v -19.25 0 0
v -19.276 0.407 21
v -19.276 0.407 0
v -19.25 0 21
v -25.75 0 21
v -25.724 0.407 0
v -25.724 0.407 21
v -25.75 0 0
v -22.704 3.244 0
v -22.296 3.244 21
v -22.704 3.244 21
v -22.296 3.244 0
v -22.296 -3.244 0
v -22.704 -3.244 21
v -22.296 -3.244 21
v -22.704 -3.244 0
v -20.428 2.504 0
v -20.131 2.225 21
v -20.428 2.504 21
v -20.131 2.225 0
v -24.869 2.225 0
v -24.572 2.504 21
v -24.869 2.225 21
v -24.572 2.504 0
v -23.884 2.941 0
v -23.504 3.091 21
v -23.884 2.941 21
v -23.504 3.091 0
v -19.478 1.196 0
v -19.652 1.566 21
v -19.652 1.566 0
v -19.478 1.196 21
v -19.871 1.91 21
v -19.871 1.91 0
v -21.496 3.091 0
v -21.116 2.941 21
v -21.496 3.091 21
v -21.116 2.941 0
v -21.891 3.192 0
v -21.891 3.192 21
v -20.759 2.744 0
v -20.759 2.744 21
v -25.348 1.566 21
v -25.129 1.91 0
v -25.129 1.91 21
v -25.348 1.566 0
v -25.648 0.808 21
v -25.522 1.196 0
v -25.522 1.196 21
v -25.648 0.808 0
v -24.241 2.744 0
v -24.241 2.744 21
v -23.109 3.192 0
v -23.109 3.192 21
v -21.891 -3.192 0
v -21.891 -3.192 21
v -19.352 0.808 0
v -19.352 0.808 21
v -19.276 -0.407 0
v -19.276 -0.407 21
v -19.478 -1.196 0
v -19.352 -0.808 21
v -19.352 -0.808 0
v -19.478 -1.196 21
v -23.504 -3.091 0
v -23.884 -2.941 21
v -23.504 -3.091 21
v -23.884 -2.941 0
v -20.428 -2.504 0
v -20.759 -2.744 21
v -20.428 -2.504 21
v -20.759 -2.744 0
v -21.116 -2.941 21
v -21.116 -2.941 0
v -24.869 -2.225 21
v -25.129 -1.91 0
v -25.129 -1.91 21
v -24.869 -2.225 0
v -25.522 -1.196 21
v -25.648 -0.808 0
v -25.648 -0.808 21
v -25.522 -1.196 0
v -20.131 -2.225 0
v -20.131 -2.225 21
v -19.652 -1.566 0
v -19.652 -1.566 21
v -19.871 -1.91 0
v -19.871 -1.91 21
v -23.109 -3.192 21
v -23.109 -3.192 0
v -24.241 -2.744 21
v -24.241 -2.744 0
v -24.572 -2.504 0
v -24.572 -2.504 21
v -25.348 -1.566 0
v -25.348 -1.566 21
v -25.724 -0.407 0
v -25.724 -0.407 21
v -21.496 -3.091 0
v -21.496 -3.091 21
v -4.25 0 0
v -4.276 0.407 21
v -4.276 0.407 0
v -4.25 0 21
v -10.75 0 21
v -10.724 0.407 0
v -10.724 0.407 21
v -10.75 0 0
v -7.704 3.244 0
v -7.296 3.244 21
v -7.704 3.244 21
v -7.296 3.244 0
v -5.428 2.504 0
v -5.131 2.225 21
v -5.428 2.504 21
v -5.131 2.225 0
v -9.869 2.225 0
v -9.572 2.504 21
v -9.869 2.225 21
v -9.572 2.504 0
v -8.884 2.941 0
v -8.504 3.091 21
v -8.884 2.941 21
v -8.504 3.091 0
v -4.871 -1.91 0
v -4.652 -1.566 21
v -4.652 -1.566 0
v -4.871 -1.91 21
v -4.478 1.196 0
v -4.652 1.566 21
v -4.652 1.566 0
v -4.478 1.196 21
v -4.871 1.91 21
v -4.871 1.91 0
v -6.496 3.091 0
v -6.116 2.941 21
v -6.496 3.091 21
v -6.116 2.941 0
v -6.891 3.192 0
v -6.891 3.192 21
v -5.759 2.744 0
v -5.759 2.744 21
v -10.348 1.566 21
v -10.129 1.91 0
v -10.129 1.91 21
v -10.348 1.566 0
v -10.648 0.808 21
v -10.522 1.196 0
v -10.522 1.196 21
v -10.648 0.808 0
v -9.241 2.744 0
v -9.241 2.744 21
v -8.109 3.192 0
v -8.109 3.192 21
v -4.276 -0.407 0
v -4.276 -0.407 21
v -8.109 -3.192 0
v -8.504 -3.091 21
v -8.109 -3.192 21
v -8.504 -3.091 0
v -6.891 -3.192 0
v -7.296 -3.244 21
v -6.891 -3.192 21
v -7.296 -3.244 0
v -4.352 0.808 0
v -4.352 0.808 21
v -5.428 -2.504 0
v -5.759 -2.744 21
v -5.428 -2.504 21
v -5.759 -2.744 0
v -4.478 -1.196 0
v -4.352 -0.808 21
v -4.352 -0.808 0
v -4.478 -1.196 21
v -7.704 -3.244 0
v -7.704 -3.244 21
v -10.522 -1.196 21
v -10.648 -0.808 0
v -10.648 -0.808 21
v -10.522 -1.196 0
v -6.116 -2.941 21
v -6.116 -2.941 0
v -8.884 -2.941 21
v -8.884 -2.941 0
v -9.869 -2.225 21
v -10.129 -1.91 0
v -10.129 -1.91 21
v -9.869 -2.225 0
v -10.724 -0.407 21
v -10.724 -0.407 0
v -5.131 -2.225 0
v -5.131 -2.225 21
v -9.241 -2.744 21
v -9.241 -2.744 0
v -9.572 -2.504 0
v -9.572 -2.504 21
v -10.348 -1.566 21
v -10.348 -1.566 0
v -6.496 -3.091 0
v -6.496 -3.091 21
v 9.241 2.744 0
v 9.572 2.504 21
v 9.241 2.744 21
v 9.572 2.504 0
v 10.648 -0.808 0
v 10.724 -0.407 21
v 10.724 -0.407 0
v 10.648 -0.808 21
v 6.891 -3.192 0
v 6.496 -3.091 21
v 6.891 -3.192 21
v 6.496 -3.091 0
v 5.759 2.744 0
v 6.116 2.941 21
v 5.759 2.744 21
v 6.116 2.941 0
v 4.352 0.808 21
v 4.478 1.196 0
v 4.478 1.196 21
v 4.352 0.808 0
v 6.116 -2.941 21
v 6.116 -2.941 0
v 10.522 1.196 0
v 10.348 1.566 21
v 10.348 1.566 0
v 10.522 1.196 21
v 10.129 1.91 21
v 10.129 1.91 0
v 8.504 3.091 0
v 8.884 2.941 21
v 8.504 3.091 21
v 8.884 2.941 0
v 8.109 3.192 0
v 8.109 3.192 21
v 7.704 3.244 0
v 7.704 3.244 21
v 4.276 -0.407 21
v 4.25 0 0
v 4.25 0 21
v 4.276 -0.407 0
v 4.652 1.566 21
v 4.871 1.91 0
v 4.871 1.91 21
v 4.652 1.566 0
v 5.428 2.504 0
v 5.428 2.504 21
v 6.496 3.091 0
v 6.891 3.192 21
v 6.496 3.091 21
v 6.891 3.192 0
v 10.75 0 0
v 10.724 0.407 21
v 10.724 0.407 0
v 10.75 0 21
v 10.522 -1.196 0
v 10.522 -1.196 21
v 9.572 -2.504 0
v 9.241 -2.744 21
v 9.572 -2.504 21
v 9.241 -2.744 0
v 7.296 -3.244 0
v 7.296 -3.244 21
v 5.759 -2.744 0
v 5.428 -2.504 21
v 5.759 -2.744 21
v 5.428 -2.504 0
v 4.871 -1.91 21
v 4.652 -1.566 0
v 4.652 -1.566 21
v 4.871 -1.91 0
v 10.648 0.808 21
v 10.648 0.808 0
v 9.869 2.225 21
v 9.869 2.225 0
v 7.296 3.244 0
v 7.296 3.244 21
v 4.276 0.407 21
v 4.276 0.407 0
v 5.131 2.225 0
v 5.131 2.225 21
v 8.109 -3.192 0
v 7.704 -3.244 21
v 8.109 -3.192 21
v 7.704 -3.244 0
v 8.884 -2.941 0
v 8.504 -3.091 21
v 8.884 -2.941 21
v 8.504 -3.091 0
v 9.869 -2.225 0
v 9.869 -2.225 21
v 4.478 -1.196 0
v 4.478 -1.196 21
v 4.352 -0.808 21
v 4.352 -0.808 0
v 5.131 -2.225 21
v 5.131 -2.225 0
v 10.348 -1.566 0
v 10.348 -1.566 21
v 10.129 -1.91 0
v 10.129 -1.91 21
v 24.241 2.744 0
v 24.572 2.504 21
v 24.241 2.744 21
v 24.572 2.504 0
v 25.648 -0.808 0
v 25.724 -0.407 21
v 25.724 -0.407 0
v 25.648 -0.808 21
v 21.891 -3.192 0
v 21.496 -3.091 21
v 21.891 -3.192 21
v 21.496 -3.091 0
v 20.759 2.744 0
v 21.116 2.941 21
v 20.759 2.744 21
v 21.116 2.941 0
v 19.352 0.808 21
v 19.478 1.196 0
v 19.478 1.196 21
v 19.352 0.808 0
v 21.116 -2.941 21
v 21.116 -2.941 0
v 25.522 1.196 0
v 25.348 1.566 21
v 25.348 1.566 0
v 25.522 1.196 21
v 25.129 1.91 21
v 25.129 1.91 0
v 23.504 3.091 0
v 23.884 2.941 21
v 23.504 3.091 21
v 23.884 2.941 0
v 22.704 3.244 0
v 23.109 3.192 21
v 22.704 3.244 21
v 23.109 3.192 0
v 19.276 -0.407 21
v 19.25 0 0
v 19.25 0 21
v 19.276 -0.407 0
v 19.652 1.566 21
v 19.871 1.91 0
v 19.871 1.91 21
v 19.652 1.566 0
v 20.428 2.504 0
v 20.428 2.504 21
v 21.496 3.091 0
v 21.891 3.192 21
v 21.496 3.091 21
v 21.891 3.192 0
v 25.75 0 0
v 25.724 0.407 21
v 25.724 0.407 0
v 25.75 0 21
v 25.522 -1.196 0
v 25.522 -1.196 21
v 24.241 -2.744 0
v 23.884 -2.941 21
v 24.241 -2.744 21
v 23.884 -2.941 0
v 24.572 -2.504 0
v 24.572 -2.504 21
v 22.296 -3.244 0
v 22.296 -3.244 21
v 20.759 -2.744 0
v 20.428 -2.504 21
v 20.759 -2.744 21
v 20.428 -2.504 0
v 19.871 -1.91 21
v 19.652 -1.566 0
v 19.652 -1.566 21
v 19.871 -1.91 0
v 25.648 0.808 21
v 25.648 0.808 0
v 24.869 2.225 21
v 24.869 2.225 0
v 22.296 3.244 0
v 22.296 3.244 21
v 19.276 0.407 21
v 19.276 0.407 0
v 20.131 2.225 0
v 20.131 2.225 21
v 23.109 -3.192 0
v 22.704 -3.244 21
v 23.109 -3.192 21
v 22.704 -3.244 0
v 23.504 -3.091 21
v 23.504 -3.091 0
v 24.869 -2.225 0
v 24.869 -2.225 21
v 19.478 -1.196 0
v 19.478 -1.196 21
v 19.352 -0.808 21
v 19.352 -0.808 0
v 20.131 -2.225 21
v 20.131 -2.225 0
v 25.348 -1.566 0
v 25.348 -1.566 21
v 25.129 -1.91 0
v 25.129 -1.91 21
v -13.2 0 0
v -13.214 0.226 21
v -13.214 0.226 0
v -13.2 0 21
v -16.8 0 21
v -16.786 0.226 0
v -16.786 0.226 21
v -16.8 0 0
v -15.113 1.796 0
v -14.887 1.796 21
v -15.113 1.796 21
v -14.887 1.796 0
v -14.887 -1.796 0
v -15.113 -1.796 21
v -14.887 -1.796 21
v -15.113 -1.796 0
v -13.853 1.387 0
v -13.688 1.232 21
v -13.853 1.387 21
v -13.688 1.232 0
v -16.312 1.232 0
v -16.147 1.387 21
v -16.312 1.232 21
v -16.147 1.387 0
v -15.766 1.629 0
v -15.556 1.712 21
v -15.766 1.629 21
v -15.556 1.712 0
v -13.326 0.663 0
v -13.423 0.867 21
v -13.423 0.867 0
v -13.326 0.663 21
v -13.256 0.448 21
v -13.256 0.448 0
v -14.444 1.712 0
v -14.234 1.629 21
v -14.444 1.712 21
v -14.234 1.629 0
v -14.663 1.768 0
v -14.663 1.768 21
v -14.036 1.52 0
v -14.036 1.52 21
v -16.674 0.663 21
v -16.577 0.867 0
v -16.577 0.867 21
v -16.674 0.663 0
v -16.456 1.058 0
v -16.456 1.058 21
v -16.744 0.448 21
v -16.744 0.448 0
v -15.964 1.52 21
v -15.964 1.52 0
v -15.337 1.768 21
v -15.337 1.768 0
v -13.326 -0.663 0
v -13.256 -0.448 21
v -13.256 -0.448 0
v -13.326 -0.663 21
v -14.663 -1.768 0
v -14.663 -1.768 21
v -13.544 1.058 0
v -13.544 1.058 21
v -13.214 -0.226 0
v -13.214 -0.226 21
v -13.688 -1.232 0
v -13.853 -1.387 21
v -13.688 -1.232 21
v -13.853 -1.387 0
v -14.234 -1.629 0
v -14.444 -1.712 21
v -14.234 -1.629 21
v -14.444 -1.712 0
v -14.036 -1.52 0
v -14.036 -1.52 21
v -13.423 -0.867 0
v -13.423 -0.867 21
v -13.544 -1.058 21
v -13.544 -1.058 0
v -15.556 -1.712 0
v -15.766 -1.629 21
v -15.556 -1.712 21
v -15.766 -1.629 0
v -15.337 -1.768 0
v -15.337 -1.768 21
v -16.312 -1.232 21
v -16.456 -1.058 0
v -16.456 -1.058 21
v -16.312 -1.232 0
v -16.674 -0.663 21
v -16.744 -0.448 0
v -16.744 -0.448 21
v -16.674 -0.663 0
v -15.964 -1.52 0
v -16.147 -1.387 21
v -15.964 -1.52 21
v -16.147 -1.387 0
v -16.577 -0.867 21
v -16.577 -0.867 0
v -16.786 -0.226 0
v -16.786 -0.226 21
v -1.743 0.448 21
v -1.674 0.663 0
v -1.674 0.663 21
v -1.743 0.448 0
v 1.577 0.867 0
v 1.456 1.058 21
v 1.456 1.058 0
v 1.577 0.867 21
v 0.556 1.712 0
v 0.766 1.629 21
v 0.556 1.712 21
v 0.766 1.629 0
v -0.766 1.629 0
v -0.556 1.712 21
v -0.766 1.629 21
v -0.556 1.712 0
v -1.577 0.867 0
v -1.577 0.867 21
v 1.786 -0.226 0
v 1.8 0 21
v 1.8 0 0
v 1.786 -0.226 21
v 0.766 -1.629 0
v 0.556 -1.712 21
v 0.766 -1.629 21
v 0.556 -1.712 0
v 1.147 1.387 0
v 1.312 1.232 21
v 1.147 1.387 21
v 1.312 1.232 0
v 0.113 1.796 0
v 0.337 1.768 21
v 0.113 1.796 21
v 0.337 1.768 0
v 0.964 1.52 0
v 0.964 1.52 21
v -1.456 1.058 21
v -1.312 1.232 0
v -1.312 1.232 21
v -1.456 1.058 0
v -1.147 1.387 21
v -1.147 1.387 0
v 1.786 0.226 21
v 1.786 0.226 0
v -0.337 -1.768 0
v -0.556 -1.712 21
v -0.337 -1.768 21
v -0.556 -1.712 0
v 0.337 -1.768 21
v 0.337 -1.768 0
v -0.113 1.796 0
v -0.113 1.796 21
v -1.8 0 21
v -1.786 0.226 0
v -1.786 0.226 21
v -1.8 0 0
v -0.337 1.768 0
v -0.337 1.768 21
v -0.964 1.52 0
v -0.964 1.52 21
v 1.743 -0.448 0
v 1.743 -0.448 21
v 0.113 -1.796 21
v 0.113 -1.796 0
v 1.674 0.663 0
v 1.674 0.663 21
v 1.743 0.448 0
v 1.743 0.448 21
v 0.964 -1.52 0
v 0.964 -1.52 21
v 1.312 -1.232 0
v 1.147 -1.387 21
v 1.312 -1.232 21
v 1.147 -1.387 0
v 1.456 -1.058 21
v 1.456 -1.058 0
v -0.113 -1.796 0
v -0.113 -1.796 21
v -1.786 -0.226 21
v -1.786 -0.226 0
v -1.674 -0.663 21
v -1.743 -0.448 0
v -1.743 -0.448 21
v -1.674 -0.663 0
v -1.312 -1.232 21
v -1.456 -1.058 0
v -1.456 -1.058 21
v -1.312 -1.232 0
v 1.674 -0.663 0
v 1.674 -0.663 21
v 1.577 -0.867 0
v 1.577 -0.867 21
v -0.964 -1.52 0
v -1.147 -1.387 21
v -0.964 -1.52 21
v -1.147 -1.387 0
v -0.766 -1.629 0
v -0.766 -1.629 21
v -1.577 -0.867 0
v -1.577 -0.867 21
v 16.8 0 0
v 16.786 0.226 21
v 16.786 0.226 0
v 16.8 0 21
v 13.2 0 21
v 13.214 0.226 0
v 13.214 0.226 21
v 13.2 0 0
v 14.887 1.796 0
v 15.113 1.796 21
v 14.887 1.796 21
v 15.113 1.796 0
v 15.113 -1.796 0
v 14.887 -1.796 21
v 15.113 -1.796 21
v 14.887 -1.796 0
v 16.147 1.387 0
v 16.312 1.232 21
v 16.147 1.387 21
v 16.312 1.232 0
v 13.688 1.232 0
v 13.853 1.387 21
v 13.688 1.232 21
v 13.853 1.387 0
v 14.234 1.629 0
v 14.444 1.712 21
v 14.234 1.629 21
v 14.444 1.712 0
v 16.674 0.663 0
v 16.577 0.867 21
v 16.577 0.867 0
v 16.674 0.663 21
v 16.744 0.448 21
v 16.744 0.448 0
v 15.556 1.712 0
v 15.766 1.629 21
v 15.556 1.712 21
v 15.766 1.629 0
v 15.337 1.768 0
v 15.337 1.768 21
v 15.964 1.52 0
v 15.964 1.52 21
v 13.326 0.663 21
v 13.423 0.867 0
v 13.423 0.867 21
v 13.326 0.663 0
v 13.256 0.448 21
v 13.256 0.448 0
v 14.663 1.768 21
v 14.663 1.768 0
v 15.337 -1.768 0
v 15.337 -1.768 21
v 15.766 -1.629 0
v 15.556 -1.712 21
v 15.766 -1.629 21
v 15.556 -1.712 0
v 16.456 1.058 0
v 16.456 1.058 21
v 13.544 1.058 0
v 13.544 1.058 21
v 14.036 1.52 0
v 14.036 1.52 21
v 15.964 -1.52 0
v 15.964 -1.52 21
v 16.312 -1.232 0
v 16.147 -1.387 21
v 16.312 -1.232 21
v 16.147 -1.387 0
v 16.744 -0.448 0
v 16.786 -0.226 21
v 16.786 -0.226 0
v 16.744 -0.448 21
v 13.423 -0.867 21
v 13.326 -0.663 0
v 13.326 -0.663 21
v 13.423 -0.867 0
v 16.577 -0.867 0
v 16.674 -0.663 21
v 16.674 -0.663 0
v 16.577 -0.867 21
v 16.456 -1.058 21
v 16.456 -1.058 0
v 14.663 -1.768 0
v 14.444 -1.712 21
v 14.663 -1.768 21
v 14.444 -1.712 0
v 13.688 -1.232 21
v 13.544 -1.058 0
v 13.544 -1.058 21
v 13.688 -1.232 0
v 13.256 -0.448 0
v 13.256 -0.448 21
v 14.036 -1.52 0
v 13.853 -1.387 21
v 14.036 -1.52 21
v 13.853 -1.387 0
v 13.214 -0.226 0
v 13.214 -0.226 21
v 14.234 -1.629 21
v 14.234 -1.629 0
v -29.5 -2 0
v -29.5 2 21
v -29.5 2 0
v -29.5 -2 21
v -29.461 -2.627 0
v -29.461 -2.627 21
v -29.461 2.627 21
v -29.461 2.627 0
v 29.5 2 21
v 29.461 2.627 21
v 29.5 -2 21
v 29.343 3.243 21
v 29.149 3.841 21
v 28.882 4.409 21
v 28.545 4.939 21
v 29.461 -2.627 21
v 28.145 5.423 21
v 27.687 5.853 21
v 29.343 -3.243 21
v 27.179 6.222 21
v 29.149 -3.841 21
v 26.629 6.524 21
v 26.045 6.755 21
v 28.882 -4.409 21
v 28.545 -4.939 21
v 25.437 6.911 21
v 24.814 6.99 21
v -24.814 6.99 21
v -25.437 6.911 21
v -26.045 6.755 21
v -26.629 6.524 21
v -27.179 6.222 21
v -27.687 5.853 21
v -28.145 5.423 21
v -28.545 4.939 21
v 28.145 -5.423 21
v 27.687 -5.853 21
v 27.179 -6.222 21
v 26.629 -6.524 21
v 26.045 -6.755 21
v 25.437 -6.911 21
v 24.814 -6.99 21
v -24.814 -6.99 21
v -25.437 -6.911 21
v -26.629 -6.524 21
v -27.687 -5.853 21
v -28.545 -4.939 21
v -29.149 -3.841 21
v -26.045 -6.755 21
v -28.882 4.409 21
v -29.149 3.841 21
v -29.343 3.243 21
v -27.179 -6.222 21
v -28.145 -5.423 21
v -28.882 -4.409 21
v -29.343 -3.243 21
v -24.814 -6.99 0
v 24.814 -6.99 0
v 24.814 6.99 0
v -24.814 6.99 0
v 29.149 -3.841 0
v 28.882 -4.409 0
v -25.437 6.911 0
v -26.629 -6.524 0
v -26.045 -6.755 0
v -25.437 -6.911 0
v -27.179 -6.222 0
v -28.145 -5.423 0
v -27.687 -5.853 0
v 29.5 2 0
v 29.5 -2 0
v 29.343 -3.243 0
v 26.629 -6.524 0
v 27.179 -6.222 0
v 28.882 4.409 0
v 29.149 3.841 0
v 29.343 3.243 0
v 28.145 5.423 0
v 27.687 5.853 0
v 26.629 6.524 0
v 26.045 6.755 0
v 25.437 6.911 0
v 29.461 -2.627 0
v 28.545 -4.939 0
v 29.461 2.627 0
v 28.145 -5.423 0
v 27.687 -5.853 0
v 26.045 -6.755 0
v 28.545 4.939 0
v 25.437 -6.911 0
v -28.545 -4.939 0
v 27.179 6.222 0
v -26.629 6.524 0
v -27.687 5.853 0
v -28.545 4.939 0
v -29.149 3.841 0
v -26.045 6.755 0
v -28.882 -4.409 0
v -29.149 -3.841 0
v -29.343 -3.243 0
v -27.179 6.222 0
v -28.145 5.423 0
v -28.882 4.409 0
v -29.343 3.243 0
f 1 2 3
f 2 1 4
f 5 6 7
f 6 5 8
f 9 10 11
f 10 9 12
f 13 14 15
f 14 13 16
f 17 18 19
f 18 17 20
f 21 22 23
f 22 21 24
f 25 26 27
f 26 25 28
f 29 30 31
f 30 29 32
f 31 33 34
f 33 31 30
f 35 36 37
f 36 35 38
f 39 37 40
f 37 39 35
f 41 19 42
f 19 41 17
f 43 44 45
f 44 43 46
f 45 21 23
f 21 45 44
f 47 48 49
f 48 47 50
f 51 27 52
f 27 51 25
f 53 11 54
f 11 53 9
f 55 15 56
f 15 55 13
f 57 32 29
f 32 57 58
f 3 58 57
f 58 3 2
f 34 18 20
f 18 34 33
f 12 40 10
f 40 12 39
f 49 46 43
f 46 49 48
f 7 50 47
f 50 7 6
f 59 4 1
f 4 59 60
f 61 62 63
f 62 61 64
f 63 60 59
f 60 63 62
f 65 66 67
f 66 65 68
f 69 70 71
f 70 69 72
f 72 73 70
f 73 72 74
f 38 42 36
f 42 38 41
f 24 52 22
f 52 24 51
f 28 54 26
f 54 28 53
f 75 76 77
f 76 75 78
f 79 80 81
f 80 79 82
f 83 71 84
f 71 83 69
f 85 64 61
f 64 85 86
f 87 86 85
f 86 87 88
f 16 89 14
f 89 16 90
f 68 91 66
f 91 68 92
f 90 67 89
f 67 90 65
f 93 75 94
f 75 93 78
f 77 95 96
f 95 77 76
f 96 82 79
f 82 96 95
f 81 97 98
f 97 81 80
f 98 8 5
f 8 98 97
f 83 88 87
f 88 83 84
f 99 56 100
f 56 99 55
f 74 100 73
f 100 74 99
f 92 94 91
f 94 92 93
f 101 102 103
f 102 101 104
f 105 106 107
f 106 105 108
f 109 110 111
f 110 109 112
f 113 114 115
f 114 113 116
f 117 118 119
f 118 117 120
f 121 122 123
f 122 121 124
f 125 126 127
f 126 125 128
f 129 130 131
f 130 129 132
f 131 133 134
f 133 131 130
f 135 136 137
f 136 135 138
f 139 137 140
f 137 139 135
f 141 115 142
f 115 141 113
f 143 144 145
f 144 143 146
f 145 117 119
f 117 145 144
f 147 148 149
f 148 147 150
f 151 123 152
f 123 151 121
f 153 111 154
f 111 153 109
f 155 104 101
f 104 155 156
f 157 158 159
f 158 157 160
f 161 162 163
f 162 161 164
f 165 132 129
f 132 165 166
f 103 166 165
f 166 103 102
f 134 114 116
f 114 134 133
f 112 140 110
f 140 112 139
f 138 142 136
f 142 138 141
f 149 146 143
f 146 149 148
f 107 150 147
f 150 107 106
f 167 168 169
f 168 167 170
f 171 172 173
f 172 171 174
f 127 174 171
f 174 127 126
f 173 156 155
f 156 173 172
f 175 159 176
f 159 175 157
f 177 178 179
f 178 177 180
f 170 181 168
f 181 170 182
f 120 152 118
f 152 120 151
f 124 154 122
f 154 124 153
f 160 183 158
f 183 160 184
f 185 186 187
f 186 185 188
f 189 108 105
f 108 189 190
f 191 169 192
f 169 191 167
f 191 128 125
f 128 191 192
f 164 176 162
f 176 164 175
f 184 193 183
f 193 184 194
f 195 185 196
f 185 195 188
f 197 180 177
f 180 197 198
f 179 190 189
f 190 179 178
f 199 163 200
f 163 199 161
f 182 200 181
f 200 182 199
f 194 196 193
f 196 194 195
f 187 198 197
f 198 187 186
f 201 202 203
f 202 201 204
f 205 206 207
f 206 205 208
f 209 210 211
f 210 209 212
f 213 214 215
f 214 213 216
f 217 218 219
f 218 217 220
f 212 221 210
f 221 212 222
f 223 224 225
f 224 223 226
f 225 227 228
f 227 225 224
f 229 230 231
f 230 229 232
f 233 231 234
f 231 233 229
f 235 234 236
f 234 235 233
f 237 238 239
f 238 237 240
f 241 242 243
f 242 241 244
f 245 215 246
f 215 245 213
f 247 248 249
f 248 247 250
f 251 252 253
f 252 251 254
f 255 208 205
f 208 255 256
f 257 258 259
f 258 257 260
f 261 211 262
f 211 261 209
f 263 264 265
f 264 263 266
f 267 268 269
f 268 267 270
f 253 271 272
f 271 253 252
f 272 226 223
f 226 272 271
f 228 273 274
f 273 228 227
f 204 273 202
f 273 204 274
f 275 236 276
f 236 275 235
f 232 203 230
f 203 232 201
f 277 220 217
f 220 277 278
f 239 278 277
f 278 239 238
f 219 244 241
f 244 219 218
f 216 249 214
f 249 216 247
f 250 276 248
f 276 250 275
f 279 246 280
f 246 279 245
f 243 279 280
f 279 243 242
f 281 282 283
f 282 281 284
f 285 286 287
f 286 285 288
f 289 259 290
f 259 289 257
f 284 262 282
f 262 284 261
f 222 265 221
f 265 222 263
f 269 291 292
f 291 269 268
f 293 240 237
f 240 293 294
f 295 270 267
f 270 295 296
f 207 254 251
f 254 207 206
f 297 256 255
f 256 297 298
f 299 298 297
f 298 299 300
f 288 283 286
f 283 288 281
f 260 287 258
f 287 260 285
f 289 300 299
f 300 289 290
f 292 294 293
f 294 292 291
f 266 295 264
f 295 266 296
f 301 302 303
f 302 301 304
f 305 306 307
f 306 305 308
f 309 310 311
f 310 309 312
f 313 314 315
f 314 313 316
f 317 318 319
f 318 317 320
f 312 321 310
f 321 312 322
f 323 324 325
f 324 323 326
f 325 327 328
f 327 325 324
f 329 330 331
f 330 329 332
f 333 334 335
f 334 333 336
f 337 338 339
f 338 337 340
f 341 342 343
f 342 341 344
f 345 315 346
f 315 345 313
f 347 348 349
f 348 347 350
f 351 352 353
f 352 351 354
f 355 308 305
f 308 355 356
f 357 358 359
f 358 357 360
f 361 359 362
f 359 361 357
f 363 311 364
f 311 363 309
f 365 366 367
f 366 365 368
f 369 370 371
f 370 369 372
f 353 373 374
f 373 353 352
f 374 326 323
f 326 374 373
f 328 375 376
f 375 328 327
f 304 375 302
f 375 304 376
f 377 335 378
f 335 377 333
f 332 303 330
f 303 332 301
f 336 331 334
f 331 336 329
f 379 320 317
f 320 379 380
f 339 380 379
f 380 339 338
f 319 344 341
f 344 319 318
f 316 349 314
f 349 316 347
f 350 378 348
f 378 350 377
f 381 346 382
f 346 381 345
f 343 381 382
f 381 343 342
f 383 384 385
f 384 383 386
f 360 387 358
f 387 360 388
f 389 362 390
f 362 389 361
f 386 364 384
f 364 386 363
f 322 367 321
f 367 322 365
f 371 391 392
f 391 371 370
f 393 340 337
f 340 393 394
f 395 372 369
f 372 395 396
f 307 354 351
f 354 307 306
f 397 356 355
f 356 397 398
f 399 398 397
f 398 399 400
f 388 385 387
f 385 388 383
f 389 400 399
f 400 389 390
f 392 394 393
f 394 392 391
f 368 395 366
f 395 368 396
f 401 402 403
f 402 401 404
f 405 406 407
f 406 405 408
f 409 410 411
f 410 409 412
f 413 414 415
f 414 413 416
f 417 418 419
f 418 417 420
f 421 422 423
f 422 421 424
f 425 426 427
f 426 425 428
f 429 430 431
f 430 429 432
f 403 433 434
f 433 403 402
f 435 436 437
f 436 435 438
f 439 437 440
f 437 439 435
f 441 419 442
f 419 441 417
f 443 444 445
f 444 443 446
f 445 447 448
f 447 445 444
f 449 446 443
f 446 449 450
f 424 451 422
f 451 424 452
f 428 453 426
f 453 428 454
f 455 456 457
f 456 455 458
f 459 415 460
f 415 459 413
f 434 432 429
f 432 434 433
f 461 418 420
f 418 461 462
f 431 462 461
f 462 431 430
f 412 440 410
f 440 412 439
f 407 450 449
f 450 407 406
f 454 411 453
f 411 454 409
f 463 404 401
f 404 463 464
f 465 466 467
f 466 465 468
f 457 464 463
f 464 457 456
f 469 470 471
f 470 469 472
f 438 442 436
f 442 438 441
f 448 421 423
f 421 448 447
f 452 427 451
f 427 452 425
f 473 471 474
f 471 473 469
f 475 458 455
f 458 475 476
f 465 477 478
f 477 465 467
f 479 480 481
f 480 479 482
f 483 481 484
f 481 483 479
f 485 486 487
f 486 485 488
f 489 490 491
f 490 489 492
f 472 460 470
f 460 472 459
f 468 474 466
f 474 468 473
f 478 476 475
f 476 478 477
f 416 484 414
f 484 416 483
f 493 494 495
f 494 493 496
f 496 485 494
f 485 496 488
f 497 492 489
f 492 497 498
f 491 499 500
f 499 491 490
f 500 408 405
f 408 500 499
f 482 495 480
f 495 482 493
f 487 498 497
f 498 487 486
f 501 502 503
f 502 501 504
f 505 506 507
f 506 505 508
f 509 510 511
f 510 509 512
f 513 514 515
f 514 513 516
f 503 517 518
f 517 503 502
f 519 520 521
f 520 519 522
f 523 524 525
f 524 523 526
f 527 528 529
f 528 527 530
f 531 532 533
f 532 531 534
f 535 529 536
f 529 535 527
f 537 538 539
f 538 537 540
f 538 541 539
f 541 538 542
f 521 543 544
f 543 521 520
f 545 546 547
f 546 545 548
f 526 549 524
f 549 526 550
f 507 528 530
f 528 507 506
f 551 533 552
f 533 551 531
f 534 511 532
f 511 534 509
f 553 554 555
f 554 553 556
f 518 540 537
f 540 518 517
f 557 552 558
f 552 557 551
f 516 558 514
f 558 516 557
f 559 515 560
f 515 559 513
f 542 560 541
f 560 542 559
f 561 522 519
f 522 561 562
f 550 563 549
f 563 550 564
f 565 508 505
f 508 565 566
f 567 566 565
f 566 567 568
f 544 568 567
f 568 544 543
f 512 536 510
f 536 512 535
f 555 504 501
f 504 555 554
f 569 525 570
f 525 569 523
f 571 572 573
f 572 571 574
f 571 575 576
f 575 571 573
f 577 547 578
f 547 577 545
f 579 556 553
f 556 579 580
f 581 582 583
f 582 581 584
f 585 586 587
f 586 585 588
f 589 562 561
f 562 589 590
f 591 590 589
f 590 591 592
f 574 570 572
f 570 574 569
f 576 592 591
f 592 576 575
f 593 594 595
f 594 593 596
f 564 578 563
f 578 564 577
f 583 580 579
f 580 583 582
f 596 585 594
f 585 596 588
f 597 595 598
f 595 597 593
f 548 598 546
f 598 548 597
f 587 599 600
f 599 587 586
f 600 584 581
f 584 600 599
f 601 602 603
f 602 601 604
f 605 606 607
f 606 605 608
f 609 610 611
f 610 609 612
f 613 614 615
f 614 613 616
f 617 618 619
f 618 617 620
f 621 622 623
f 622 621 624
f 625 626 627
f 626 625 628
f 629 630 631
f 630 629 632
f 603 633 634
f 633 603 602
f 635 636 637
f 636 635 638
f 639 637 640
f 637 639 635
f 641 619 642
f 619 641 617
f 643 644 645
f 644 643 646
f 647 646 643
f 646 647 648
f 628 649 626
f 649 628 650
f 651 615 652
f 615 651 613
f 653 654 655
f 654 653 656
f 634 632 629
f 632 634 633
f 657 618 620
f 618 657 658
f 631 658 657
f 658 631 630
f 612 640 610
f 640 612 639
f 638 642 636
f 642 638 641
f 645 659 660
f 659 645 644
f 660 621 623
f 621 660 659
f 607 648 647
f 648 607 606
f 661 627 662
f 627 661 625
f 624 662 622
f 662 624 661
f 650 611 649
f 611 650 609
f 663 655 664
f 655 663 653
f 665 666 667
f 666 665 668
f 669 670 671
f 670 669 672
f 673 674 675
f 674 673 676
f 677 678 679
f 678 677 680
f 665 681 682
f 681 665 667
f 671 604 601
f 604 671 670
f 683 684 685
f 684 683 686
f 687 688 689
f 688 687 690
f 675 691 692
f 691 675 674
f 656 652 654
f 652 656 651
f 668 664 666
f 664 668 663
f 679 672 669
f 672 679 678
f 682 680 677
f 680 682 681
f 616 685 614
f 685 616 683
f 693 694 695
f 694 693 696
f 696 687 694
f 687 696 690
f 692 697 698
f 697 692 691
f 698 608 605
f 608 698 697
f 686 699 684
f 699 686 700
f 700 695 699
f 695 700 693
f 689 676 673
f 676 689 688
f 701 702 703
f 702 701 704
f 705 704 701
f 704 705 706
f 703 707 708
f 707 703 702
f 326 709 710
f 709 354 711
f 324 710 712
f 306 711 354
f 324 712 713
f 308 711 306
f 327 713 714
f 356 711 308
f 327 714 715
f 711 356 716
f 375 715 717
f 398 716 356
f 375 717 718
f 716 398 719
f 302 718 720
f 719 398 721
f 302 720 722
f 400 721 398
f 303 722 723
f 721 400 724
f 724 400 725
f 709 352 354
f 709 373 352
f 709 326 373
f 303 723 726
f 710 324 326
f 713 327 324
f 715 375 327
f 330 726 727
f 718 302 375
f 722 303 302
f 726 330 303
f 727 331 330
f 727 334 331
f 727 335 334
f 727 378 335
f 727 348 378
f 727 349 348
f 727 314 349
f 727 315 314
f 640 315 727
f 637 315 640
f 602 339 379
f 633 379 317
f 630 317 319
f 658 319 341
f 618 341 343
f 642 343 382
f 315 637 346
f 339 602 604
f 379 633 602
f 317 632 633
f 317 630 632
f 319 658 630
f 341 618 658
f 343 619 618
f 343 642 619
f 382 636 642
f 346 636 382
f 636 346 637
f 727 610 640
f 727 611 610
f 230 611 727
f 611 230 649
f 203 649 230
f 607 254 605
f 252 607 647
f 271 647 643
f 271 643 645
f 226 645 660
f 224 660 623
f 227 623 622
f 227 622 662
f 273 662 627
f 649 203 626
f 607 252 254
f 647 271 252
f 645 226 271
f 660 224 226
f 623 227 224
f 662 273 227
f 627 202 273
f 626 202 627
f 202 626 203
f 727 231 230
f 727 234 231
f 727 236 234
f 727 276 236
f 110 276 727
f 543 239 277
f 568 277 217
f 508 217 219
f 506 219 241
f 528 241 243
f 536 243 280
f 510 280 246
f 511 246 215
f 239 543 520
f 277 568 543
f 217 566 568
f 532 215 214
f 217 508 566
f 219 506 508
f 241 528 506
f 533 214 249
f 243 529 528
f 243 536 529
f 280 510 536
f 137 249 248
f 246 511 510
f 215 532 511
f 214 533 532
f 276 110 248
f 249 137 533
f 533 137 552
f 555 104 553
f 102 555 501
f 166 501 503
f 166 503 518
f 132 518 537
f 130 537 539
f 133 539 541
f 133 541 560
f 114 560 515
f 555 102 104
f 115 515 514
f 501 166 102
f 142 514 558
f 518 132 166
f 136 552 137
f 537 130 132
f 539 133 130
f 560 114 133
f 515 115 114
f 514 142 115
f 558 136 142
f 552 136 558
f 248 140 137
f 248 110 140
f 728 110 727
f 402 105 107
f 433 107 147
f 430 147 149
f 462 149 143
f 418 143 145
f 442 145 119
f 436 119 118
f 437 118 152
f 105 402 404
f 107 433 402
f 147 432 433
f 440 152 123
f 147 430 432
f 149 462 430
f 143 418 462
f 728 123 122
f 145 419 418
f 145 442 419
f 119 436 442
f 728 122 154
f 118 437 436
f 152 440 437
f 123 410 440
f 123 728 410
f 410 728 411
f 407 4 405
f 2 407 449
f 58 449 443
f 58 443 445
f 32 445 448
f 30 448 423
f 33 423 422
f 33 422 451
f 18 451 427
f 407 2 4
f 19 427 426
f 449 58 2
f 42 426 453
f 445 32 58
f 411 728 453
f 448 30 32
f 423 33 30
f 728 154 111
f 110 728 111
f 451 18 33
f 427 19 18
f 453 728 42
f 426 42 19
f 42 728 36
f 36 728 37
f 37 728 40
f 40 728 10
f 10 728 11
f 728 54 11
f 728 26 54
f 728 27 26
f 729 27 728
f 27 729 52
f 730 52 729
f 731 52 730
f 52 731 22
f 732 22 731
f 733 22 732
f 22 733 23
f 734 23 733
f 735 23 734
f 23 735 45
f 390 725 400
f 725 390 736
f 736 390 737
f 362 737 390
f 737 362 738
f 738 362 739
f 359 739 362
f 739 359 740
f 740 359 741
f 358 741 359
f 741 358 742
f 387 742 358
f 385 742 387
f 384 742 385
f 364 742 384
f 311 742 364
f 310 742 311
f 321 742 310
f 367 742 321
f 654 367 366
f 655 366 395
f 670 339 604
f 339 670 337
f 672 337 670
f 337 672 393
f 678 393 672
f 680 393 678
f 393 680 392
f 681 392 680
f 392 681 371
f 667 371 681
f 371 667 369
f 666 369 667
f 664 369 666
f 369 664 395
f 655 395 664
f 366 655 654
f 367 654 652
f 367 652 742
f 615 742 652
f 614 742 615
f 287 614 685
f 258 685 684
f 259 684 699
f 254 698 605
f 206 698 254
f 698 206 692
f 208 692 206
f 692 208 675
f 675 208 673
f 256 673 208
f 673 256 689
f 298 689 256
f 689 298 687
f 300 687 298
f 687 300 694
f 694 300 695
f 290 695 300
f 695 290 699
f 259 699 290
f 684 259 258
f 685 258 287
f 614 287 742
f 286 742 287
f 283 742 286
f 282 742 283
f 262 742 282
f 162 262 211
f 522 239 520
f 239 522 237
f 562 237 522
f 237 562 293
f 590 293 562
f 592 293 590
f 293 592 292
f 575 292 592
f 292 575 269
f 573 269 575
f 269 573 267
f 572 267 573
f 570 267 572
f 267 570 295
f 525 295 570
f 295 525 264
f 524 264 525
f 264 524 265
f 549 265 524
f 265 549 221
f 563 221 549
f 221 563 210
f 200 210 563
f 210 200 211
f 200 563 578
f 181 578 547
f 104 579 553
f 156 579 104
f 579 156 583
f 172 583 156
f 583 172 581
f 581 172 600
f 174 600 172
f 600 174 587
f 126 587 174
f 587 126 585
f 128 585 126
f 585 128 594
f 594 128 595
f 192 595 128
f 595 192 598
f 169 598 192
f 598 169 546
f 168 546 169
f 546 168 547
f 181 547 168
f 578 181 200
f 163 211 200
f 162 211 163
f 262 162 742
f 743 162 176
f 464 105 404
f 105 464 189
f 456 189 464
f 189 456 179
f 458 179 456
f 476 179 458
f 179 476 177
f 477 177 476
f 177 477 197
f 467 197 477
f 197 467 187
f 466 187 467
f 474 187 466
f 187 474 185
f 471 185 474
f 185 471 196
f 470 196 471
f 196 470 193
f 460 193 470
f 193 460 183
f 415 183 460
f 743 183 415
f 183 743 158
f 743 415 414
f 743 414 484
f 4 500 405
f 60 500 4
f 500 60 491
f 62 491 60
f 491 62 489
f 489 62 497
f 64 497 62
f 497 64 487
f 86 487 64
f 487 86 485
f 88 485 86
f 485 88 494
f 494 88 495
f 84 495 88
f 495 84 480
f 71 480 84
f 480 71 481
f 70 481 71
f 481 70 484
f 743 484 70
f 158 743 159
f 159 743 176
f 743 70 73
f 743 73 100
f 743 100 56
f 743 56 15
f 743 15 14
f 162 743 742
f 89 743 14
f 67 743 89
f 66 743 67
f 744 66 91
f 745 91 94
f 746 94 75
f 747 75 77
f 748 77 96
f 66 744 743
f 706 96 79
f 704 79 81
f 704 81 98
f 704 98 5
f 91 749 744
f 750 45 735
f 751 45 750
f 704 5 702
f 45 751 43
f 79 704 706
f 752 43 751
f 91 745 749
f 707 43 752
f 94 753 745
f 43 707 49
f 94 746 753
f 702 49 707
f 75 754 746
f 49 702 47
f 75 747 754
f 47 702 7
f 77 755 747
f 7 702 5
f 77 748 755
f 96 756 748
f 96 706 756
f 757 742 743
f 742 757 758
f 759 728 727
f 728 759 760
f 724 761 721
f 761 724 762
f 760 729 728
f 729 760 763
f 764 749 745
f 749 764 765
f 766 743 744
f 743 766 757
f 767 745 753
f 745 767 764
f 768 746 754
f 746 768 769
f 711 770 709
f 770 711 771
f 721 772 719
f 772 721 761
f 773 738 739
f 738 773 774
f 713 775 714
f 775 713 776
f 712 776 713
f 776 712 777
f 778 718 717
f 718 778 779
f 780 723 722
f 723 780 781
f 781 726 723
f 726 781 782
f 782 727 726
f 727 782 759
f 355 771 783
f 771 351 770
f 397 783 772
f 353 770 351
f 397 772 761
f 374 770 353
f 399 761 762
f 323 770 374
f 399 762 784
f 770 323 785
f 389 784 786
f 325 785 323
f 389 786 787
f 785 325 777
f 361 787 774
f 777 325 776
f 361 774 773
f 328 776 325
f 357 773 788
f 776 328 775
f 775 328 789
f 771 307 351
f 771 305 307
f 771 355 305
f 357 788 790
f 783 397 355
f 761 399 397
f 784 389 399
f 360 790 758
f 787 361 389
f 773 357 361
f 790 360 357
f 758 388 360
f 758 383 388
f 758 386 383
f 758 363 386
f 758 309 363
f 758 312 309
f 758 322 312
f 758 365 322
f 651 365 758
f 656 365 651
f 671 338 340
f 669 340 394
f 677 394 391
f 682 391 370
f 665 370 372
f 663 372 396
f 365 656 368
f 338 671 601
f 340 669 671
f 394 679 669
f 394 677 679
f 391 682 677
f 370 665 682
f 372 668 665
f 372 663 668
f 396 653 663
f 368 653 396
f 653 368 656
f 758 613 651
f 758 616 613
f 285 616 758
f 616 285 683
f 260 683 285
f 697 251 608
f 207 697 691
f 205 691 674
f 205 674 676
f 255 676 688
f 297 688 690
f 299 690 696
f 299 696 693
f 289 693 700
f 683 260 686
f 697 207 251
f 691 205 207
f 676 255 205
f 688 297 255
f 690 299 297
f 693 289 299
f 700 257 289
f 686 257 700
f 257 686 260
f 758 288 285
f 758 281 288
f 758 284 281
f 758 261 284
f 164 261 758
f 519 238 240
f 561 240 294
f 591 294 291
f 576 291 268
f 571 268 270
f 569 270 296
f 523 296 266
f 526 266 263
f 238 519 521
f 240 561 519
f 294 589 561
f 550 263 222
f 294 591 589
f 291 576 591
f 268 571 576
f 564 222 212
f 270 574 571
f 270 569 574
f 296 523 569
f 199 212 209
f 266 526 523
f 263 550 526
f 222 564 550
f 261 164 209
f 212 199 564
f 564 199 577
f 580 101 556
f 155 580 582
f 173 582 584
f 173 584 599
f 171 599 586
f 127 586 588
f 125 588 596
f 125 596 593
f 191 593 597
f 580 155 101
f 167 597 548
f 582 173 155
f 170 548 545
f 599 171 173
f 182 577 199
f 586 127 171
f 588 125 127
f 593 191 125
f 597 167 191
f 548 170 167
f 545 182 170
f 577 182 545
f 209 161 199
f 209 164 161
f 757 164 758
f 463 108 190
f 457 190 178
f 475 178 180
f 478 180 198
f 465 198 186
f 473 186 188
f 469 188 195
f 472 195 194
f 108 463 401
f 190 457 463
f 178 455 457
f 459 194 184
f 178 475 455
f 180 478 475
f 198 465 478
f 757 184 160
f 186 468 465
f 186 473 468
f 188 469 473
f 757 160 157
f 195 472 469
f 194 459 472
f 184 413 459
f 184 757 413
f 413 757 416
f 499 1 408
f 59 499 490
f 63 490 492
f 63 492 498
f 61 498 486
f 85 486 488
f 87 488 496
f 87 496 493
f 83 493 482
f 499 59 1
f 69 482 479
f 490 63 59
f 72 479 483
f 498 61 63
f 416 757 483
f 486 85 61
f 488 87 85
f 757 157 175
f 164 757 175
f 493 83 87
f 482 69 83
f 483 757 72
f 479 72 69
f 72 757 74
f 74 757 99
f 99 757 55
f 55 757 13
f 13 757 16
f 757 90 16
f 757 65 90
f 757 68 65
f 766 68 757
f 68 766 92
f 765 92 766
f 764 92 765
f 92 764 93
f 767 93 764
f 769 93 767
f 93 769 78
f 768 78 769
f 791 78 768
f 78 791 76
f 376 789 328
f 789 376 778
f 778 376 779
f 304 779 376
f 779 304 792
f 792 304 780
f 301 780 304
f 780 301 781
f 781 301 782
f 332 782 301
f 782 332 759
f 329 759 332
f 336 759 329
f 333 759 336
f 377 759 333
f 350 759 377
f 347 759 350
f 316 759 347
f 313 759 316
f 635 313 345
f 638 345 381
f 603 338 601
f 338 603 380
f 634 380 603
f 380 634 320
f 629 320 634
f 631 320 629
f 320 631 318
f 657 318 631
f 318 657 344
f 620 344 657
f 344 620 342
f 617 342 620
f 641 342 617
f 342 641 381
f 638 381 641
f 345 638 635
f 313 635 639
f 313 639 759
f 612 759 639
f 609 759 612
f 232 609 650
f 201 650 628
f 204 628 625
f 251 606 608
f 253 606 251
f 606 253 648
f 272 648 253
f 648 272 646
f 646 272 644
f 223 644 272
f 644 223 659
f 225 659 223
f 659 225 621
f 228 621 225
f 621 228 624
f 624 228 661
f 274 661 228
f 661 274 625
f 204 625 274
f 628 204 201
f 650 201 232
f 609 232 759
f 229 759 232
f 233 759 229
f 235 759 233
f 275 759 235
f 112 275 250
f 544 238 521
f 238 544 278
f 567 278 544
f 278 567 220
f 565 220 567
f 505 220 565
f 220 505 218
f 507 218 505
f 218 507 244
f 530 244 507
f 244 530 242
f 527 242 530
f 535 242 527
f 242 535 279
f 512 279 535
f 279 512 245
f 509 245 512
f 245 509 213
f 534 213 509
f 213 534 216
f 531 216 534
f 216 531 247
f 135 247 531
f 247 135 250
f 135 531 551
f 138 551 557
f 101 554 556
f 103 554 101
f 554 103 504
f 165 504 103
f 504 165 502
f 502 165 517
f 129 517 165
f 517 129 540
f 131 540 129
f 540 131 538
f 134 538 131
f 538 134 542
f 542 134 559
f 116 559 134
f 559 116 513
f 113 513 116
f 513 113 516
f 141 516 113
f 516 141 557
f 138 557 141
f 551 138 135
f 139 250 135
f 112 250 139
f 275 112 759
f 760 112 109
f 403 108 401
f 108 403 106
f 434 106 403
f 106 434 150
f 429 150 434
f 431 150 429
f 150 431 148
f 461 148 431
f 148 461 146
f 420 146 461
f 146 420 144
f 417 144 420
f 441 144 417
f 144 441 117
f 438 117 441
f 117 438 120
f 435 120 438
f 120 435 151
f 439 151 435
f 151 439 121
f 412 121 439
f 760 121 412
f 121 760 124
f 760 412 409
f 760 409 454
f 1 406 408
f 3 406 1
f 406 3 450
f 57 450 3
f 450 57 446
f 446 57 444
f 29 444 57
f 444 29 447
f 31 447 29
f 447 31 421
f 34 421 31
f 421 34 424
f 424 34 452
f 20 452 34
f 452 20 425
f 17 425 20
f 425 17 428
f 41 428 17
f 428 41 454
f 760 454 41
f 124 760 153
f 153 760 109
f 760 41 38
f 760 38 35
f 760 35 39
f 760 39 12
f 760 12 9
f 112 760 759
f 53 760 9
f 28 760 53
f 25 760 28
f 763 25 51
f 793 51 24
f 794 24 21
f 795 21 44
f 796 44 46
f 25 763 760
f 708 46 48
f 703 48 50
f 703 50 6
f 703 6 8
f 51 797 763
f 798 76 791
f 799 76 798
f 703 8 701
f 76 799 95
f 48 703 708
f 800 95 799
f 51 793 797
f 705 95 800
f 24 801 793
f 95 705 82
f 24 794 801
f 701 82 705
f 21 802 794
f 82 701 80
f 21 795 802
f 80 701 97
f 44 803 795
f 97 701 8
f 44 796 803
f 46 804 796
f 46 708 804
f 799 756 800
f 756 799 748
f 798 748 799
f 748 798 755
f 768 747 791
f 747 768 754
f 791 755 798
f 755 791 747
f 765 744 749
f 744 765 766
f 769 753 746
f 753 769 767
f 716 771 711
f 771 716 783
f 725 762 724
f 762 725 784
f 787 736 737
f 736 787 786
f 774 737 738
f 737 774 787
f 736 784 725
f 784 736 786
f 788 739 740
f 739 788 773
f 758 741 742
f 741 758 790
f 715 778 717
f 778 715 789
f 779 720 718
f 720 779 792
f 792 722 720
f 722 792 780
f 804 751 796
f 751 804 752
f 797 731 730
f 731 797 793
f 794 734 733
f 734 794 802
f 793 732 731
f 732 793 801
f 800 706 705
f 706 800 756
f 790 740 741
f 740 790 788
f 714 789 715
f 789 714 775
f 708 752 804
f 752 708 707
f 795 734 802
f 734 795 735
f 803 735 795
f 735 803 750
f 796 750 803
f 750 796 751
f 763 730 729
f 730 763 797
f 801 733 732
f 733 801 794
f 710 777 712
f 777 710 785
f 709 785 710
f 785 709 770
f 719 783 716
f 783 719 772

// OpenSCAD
$fn = 50;


difference() {
	union() {
		translate(v = [0, 0, 0]) {
			rotate(a = [0, 0, 0]) {
				hull() {
					translate(v = [-24.5000000000, 2.0000000000, 0]) {
						rotate(a = [0, 0, 0]) {
							translate(v = [0, 0, 0]) {
								rotate(a = [0, 0, 0]) {
									cylinder(h = 21, r = 5);
								}
							}
						}
					}
					translate(v = [24.5000000000, 2.0000000000, 0]) {
						rotate(a = [0, 0, 0]) {
							translate(v = [0, 0, 0]) {
								rotate(a = [0, 0, 0]) {
									cylinder(h = 21, r = 5);
								}
							}
						}
					}
					translate(v = [-24.5000000000, -2.0000000000, 0]) {
						rotate(a = [0, 0, 0]) {
							translate(v = [0, 0, 0]) {
								rotate(a = [0, 0, 0]) {
									cylinder(h = 21, r = 5);
								}
							}
						}
					}
					translate(v = [24.5000000000, -2.0000000000, 0]) {
						rotate(a = [0, 0, 0]) {
							translate(v = [0, 0, 0]) {
								rotate(a = [0, 0, 0]) {
									cylinder(h = 21, r = 5);
								}
							}
						}
					}
				}
			}
		}
	}
	union() {
		translate(v = [-22.5000000000, 0.0000000000, 0]) {
			rotate(a = [0, 0, 0]) {
				translate(v = [0, 0, -50]) {
					rotate(a = [0, 0, 0]) {
						cylinder(h = 100, r = 3.2500000000);
					}
				}
			}
		}
		translate(v = [-7.5000000000, 0.0000000000, 0]) {
			rotate(a = [0, 0, 0]) {
				translate(v = [0, 0, -50]) {
					rotate(a = [0, 0, 0]) {
						cylinder(h = 100, r = 3.2500000000);
					}
				}
			}
		}
		translate(v = [7.5000000000, 0.0000000000, 0]) {
			rotate(a = [0, 0, 0]) {
				translate(v = [0, 0, -50]) {
					rotate(a = [0, 0, 0]) {
						cylinder(h = 100, r = 3.2500000000);
					}
				}
			}
		}
		translate(v = [22.5000000000, 0.0000000000, 0]) {
			rotate(a = [0, 0, 0]) {
				translate(v = [0, 0, -50]) {
					rotate(a = [0, 0, 0]) {
						cylinder(h = 100, r = 3.2500000000);
					}
				}
			}
		}
		translate(v = [-22.5000000000, 0.0000000000, 0]) {
			rotate(a = [0, 0, 0]) {
				translate(v = [0, 0, -50]) {
					rotate(a = [0, 0, 0]) {
						cylinder(h = 100, r = 1.8000000000);
					}
				}
			}
		}
		translate(v = [-15.0000000000, 0.0000000000, 0]) {
			rotate(a = [0, 0, 0]) {
				translate(v = [0, 0, -50]) {
					rotate(a = [0, 0, 0]) {
						cylinder(h = 100, r = 1.8000000000);
					}
				}
			}
		}
		translate(v = [-7.5000000000, 0.0000000000, 0]) {
			rotate(a = [0, 0, 0]) {
				translate(v = [0, 0, -50]) {
					rotate(a = [0, 0, 0]) {
						cylinder(h = 100, r = 1.8000000000);
					}
				}
			}
		}
		translate(v = [0.0000000000, 0.0000000000, 0]) {
			rotate(a = [0, 0, 0]) {
				translate(v = [0, 0, -50]) {
					rotate(a = [0, 0, 0]) {
						cylinder(h = 100, r = 1.8000000000);
					}
				}
			}
		}
		translate(v = [7.5000000000, 0.0000000000, 0]) {
			rotate(a = [0, 0, 0]) {
				translate(v = [0, 0, -50]) {
					rotate(a = [0, 0, 0]) {
						cylinder(h = 100, r = 1.8000000000);
					}
				}
			}
		}
		translate(v = [15.0000000000, 0.0000000000, 0]) {
			rotate(a = [0, 0, 0]) {
				translate(v = [0, 0, -50]) {
					rotate(a = [0, 0, 0]) {
						cylinder(h = 100, r = 1.8000000000);
					}
				}
			}
		}
		translate(v = [22.5000000000, 0.0000000000, 0]) {
			rotate(a = [0, 0, 0]) {
				translate(v = [0, 0, -50]) {
					rotate(a = [0, 0, 0]) {
						cylinder(h = 100, r = 1.8000000000);
					}
				}
			}
		}
	}
}
